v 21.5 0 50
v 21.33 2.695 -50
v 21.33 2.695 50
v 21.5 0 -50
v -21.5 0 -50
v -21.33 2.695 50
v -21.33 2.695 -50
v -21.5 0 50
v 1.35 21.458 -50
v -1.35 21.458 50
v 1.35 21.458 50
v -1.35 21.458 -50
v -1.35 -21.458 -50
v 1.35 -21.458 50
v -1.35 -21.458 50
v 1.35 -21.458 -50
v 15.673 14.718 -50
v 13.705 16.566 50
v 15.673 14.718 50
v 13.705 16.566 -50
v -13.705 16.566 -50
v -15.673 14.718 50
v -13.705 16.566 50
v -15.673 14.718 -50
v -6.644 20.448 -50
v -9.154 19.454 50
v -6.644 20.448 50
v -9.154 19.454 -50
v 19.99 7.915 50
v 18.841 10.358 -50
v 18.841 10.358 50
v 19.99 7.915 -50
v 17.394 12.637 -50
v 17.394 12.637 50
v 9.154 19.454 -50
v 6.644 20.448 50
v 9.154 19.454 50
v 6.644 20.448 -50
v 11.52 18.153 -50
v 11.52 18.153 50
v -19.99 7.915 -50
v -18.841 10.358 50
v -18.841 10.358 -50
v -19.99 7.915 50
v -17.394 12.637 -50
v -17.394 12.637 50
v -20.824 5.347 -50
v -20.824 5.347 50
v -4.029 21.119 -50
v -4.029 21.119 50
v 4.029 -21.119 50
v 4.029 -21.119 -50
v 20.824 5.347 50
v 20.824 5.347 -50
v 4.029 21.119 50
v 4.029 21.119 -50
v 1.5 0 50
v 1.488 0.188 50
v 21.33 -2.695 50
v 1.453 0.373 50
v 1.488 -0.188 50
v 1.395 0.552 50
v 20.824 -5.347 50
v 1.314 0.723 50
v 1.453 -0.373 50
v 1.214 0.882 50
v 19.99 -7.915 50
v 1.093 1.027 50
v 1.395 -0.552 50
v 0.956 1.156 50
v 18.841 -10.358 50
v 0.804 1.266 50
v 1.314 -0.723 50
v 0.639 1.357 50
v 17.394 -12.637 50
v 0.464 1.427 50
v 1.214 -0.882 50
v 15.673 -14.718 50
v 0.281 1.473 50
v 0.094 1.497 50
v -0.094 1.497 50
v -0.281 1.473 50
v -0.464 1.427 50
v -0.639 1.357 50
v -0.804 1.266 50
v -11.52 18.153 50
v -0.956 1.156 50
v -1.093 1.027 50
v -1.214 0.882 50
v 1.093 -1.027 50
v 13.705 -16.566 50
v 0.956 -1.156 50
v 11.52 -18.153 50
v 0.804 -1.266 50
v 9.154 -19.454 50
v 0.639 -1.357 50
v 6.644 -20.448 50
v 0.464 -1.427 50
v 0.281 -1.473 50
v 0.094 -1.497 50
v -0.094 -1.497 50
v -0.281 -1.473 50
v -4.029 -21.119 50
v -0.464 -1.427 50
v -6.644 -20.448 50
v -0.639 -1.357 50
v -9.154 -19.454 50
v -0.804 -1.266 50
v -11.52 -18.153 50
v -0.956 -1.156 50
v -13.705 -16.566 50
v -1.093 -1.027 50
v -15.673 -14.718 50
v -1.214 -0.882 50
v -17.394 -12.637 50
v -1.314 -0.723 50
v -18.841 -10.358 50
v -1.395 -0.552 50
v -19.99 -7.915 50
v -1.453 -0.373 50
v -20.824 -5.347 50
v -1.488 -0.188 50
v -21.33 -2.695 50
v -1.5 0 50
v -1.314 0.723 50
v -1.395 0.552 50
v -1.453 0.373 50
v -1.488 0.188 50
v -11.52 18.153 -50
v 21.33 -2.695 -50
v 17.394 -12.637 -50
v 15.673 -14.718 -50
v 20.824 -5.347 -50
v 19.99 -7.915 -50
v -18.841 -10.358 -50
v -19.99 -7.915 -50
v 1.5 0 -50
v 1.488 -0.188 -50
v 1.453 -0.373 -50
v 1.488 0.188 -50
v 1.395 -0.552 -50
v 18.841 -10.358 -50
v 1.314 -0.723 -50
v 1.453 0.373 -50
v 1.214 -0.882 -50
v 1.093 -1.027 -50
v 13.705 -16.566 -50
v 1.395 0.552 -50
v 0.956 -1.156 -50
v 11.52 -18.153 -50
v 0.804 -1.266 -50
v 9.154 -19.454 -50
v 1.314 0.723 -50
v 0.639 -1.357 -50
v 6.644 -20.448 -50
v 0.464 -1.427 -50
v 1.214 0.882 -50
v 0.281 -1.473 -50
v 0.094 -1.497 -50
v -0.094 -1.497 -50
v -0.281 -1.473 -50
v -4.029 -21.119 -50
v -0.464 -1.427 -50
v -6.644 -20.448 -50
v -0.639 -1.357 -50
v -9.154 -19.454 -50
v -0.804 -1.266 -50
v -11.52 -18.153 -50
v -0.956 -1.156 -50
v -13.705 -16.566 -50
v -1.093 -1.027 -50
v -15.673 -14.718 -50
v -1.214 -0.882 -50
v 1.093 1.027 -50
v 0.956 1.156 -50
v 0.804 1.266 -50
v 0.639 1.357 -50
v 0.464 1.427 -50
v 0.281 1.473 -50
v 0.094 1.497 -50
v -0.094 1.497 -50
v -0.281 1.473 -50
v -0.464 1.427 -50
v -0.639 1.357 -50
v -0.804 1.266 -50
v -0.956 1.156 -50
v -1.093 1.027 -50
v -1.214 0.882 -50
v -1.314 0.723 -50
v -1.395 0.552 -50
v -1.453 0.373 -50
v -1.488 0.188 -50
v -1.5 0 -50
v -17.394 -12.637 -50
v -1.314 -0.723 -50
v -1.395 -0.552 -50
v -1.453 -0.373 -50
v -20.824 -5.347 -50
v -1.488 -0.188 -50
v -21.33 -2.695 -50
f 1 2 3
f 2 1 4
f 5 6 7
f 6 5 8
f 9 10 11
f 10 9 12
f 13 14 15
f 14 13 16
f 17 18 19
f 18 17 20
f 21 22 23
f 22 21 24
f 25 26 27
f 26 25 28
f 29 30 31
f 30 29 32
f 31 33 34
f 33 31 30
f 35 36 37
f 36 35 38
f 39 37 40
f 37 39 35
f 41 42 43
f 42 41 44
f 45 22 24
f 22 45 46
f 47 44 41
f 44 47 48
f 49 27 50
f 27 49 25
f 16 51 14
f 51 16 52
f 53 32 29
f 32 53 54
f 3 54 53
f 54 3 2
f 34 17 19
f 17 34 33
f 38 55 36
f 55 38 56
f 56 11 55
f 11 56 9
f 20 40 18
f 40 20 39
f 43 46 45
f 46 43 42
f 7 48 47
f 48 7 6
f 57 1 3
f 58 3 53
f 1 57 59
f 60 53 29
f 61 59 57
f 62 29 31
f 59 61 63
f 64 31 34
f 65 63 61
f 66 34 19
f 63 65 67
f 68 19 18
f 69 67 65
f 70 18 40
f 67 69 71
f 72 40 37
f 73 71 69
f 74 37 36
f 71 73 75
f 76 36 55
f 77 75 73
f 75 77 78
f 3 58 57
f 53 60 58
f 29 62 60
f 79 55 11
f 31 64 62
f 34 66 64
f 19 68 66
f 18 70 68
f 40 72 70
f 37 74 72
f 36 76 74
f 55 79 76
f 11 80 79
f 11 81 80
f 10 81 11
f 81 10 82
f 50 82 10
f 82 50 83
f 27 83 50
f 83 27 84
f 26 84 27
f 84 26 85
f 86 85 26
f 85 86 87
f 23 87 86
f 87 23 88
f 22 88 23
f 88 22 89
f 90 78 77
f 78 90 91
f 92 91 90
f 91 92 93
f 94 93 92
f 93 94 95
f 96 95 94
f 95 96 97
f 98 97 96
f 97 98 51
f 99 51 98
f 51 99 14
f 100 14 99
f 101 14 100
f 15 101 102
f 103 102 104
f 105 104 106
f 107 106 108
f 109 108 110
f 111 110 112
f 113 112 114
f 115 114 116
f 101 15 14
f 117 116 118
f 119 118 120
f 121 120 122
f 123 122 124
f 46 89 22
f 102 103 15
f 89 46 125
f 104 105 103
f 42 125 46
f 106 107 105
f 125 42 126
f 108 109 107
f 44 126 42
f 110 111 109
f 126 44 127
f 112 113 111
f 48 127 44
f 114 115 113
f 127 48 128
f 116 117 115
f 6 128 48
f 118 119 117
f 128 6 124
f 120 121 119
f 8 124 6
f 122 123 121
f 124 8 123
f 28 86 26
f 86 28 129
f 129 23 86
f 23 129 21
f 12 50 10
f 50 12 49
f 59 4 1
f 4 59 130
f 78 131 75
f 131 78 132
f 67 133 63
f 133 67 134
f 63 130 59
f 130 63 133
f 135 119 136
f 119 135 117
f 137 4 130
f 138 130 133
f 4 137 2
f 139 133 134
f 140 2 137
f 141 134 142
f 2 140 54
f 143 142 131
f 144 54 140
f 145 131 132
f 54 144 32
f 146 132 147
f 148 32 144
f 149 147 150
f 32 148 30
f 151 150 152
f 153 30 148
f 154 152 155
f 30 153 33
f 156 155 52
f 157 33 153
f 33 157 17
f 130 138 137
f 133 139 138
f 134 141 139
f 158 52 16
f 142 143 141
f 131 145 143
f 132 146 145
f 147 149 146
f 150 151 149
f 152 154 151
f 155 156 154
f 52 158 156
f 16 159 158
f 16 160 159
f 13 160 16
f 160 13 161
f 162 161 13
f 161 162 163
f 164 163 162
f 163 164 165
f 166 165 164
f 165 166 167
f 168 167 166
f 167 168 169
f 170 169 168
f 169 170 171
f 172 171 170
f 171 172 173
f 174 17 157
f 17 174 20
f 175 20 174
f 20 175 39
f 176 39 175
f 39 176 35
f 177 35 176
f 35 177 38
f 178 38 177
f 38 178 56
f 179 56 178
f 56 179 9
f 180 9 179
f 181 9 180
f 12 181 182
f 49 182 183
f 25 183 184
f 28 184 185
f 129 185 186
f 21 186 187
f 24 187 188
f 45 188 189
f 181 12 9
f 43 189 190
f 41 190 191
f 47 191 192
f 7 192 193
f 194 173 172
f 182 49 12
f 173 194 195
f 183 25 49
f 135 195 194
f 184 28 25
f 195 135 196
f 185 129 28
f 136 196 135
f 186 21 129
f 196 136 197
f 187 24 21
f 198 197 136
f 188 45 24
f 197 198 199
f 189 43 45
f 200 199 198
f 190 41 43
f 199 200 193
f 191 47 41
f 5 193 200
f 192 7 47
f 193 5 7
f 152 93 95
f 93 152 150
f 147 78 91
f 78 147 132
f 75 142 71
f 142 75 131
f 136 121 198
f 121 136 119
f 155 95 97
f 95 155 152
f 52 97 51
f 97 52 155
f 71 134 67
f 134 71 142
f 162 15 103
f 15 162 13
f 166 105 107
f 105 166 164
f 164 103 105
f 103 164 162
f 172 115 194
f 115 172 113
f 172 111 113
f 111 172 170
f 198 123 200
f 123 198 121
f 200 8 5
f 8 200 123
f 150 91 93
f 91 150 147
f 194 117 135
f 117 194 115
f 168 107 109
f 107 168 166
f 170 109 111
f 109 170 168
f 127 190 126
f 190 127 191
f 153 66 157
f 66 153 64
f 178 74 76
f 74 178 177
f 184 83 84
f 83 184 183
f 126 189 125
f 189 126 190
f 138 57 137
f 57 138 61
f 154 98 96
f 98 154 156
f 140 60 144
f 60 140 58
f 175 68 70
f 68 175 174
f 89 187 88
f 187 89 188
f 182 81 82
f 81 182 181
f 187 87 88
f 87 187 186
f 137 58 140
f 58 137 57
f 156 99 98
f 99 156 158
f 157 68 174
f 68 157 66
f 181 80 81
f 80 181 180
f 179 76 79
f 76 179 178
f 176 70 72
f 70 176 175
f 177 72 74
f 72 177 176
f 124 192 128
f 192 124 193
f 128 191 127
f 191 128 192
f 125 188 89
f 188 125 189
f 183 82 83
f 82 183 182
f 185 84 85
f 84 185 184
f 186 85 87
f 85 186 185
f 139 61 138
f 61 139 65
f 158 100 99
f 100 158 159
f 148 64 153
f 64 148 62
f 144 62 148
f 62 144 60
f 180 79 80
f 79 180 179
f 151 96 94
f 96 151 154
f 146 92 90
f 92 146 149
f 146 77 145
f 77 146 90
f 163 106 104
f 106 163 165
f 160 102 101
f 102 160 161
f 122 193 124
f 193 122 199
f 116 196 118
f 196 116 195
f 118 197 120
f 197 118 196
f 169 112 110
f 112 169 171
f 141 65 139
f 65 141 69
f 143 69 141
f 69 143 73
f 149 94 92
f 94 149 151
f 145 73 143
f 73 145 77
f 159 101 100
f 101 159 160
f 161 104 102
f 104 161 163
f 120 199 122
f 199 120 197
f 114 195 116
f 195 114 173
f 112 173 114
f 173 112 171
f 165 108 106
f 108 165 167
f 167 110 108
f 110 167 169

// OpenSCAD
$fn = 50;


difference() {
	union() {
		translate(v = [0, 0, -50.0000000000]) {
			cylinder(h = 100, r = 21.5000000000);
		}
	}
	union() {
		translate(v = [0, 0, -100.0000000000]) {
			cylinder(h = 200, r = 1.5000000000);
		}
	}
}
